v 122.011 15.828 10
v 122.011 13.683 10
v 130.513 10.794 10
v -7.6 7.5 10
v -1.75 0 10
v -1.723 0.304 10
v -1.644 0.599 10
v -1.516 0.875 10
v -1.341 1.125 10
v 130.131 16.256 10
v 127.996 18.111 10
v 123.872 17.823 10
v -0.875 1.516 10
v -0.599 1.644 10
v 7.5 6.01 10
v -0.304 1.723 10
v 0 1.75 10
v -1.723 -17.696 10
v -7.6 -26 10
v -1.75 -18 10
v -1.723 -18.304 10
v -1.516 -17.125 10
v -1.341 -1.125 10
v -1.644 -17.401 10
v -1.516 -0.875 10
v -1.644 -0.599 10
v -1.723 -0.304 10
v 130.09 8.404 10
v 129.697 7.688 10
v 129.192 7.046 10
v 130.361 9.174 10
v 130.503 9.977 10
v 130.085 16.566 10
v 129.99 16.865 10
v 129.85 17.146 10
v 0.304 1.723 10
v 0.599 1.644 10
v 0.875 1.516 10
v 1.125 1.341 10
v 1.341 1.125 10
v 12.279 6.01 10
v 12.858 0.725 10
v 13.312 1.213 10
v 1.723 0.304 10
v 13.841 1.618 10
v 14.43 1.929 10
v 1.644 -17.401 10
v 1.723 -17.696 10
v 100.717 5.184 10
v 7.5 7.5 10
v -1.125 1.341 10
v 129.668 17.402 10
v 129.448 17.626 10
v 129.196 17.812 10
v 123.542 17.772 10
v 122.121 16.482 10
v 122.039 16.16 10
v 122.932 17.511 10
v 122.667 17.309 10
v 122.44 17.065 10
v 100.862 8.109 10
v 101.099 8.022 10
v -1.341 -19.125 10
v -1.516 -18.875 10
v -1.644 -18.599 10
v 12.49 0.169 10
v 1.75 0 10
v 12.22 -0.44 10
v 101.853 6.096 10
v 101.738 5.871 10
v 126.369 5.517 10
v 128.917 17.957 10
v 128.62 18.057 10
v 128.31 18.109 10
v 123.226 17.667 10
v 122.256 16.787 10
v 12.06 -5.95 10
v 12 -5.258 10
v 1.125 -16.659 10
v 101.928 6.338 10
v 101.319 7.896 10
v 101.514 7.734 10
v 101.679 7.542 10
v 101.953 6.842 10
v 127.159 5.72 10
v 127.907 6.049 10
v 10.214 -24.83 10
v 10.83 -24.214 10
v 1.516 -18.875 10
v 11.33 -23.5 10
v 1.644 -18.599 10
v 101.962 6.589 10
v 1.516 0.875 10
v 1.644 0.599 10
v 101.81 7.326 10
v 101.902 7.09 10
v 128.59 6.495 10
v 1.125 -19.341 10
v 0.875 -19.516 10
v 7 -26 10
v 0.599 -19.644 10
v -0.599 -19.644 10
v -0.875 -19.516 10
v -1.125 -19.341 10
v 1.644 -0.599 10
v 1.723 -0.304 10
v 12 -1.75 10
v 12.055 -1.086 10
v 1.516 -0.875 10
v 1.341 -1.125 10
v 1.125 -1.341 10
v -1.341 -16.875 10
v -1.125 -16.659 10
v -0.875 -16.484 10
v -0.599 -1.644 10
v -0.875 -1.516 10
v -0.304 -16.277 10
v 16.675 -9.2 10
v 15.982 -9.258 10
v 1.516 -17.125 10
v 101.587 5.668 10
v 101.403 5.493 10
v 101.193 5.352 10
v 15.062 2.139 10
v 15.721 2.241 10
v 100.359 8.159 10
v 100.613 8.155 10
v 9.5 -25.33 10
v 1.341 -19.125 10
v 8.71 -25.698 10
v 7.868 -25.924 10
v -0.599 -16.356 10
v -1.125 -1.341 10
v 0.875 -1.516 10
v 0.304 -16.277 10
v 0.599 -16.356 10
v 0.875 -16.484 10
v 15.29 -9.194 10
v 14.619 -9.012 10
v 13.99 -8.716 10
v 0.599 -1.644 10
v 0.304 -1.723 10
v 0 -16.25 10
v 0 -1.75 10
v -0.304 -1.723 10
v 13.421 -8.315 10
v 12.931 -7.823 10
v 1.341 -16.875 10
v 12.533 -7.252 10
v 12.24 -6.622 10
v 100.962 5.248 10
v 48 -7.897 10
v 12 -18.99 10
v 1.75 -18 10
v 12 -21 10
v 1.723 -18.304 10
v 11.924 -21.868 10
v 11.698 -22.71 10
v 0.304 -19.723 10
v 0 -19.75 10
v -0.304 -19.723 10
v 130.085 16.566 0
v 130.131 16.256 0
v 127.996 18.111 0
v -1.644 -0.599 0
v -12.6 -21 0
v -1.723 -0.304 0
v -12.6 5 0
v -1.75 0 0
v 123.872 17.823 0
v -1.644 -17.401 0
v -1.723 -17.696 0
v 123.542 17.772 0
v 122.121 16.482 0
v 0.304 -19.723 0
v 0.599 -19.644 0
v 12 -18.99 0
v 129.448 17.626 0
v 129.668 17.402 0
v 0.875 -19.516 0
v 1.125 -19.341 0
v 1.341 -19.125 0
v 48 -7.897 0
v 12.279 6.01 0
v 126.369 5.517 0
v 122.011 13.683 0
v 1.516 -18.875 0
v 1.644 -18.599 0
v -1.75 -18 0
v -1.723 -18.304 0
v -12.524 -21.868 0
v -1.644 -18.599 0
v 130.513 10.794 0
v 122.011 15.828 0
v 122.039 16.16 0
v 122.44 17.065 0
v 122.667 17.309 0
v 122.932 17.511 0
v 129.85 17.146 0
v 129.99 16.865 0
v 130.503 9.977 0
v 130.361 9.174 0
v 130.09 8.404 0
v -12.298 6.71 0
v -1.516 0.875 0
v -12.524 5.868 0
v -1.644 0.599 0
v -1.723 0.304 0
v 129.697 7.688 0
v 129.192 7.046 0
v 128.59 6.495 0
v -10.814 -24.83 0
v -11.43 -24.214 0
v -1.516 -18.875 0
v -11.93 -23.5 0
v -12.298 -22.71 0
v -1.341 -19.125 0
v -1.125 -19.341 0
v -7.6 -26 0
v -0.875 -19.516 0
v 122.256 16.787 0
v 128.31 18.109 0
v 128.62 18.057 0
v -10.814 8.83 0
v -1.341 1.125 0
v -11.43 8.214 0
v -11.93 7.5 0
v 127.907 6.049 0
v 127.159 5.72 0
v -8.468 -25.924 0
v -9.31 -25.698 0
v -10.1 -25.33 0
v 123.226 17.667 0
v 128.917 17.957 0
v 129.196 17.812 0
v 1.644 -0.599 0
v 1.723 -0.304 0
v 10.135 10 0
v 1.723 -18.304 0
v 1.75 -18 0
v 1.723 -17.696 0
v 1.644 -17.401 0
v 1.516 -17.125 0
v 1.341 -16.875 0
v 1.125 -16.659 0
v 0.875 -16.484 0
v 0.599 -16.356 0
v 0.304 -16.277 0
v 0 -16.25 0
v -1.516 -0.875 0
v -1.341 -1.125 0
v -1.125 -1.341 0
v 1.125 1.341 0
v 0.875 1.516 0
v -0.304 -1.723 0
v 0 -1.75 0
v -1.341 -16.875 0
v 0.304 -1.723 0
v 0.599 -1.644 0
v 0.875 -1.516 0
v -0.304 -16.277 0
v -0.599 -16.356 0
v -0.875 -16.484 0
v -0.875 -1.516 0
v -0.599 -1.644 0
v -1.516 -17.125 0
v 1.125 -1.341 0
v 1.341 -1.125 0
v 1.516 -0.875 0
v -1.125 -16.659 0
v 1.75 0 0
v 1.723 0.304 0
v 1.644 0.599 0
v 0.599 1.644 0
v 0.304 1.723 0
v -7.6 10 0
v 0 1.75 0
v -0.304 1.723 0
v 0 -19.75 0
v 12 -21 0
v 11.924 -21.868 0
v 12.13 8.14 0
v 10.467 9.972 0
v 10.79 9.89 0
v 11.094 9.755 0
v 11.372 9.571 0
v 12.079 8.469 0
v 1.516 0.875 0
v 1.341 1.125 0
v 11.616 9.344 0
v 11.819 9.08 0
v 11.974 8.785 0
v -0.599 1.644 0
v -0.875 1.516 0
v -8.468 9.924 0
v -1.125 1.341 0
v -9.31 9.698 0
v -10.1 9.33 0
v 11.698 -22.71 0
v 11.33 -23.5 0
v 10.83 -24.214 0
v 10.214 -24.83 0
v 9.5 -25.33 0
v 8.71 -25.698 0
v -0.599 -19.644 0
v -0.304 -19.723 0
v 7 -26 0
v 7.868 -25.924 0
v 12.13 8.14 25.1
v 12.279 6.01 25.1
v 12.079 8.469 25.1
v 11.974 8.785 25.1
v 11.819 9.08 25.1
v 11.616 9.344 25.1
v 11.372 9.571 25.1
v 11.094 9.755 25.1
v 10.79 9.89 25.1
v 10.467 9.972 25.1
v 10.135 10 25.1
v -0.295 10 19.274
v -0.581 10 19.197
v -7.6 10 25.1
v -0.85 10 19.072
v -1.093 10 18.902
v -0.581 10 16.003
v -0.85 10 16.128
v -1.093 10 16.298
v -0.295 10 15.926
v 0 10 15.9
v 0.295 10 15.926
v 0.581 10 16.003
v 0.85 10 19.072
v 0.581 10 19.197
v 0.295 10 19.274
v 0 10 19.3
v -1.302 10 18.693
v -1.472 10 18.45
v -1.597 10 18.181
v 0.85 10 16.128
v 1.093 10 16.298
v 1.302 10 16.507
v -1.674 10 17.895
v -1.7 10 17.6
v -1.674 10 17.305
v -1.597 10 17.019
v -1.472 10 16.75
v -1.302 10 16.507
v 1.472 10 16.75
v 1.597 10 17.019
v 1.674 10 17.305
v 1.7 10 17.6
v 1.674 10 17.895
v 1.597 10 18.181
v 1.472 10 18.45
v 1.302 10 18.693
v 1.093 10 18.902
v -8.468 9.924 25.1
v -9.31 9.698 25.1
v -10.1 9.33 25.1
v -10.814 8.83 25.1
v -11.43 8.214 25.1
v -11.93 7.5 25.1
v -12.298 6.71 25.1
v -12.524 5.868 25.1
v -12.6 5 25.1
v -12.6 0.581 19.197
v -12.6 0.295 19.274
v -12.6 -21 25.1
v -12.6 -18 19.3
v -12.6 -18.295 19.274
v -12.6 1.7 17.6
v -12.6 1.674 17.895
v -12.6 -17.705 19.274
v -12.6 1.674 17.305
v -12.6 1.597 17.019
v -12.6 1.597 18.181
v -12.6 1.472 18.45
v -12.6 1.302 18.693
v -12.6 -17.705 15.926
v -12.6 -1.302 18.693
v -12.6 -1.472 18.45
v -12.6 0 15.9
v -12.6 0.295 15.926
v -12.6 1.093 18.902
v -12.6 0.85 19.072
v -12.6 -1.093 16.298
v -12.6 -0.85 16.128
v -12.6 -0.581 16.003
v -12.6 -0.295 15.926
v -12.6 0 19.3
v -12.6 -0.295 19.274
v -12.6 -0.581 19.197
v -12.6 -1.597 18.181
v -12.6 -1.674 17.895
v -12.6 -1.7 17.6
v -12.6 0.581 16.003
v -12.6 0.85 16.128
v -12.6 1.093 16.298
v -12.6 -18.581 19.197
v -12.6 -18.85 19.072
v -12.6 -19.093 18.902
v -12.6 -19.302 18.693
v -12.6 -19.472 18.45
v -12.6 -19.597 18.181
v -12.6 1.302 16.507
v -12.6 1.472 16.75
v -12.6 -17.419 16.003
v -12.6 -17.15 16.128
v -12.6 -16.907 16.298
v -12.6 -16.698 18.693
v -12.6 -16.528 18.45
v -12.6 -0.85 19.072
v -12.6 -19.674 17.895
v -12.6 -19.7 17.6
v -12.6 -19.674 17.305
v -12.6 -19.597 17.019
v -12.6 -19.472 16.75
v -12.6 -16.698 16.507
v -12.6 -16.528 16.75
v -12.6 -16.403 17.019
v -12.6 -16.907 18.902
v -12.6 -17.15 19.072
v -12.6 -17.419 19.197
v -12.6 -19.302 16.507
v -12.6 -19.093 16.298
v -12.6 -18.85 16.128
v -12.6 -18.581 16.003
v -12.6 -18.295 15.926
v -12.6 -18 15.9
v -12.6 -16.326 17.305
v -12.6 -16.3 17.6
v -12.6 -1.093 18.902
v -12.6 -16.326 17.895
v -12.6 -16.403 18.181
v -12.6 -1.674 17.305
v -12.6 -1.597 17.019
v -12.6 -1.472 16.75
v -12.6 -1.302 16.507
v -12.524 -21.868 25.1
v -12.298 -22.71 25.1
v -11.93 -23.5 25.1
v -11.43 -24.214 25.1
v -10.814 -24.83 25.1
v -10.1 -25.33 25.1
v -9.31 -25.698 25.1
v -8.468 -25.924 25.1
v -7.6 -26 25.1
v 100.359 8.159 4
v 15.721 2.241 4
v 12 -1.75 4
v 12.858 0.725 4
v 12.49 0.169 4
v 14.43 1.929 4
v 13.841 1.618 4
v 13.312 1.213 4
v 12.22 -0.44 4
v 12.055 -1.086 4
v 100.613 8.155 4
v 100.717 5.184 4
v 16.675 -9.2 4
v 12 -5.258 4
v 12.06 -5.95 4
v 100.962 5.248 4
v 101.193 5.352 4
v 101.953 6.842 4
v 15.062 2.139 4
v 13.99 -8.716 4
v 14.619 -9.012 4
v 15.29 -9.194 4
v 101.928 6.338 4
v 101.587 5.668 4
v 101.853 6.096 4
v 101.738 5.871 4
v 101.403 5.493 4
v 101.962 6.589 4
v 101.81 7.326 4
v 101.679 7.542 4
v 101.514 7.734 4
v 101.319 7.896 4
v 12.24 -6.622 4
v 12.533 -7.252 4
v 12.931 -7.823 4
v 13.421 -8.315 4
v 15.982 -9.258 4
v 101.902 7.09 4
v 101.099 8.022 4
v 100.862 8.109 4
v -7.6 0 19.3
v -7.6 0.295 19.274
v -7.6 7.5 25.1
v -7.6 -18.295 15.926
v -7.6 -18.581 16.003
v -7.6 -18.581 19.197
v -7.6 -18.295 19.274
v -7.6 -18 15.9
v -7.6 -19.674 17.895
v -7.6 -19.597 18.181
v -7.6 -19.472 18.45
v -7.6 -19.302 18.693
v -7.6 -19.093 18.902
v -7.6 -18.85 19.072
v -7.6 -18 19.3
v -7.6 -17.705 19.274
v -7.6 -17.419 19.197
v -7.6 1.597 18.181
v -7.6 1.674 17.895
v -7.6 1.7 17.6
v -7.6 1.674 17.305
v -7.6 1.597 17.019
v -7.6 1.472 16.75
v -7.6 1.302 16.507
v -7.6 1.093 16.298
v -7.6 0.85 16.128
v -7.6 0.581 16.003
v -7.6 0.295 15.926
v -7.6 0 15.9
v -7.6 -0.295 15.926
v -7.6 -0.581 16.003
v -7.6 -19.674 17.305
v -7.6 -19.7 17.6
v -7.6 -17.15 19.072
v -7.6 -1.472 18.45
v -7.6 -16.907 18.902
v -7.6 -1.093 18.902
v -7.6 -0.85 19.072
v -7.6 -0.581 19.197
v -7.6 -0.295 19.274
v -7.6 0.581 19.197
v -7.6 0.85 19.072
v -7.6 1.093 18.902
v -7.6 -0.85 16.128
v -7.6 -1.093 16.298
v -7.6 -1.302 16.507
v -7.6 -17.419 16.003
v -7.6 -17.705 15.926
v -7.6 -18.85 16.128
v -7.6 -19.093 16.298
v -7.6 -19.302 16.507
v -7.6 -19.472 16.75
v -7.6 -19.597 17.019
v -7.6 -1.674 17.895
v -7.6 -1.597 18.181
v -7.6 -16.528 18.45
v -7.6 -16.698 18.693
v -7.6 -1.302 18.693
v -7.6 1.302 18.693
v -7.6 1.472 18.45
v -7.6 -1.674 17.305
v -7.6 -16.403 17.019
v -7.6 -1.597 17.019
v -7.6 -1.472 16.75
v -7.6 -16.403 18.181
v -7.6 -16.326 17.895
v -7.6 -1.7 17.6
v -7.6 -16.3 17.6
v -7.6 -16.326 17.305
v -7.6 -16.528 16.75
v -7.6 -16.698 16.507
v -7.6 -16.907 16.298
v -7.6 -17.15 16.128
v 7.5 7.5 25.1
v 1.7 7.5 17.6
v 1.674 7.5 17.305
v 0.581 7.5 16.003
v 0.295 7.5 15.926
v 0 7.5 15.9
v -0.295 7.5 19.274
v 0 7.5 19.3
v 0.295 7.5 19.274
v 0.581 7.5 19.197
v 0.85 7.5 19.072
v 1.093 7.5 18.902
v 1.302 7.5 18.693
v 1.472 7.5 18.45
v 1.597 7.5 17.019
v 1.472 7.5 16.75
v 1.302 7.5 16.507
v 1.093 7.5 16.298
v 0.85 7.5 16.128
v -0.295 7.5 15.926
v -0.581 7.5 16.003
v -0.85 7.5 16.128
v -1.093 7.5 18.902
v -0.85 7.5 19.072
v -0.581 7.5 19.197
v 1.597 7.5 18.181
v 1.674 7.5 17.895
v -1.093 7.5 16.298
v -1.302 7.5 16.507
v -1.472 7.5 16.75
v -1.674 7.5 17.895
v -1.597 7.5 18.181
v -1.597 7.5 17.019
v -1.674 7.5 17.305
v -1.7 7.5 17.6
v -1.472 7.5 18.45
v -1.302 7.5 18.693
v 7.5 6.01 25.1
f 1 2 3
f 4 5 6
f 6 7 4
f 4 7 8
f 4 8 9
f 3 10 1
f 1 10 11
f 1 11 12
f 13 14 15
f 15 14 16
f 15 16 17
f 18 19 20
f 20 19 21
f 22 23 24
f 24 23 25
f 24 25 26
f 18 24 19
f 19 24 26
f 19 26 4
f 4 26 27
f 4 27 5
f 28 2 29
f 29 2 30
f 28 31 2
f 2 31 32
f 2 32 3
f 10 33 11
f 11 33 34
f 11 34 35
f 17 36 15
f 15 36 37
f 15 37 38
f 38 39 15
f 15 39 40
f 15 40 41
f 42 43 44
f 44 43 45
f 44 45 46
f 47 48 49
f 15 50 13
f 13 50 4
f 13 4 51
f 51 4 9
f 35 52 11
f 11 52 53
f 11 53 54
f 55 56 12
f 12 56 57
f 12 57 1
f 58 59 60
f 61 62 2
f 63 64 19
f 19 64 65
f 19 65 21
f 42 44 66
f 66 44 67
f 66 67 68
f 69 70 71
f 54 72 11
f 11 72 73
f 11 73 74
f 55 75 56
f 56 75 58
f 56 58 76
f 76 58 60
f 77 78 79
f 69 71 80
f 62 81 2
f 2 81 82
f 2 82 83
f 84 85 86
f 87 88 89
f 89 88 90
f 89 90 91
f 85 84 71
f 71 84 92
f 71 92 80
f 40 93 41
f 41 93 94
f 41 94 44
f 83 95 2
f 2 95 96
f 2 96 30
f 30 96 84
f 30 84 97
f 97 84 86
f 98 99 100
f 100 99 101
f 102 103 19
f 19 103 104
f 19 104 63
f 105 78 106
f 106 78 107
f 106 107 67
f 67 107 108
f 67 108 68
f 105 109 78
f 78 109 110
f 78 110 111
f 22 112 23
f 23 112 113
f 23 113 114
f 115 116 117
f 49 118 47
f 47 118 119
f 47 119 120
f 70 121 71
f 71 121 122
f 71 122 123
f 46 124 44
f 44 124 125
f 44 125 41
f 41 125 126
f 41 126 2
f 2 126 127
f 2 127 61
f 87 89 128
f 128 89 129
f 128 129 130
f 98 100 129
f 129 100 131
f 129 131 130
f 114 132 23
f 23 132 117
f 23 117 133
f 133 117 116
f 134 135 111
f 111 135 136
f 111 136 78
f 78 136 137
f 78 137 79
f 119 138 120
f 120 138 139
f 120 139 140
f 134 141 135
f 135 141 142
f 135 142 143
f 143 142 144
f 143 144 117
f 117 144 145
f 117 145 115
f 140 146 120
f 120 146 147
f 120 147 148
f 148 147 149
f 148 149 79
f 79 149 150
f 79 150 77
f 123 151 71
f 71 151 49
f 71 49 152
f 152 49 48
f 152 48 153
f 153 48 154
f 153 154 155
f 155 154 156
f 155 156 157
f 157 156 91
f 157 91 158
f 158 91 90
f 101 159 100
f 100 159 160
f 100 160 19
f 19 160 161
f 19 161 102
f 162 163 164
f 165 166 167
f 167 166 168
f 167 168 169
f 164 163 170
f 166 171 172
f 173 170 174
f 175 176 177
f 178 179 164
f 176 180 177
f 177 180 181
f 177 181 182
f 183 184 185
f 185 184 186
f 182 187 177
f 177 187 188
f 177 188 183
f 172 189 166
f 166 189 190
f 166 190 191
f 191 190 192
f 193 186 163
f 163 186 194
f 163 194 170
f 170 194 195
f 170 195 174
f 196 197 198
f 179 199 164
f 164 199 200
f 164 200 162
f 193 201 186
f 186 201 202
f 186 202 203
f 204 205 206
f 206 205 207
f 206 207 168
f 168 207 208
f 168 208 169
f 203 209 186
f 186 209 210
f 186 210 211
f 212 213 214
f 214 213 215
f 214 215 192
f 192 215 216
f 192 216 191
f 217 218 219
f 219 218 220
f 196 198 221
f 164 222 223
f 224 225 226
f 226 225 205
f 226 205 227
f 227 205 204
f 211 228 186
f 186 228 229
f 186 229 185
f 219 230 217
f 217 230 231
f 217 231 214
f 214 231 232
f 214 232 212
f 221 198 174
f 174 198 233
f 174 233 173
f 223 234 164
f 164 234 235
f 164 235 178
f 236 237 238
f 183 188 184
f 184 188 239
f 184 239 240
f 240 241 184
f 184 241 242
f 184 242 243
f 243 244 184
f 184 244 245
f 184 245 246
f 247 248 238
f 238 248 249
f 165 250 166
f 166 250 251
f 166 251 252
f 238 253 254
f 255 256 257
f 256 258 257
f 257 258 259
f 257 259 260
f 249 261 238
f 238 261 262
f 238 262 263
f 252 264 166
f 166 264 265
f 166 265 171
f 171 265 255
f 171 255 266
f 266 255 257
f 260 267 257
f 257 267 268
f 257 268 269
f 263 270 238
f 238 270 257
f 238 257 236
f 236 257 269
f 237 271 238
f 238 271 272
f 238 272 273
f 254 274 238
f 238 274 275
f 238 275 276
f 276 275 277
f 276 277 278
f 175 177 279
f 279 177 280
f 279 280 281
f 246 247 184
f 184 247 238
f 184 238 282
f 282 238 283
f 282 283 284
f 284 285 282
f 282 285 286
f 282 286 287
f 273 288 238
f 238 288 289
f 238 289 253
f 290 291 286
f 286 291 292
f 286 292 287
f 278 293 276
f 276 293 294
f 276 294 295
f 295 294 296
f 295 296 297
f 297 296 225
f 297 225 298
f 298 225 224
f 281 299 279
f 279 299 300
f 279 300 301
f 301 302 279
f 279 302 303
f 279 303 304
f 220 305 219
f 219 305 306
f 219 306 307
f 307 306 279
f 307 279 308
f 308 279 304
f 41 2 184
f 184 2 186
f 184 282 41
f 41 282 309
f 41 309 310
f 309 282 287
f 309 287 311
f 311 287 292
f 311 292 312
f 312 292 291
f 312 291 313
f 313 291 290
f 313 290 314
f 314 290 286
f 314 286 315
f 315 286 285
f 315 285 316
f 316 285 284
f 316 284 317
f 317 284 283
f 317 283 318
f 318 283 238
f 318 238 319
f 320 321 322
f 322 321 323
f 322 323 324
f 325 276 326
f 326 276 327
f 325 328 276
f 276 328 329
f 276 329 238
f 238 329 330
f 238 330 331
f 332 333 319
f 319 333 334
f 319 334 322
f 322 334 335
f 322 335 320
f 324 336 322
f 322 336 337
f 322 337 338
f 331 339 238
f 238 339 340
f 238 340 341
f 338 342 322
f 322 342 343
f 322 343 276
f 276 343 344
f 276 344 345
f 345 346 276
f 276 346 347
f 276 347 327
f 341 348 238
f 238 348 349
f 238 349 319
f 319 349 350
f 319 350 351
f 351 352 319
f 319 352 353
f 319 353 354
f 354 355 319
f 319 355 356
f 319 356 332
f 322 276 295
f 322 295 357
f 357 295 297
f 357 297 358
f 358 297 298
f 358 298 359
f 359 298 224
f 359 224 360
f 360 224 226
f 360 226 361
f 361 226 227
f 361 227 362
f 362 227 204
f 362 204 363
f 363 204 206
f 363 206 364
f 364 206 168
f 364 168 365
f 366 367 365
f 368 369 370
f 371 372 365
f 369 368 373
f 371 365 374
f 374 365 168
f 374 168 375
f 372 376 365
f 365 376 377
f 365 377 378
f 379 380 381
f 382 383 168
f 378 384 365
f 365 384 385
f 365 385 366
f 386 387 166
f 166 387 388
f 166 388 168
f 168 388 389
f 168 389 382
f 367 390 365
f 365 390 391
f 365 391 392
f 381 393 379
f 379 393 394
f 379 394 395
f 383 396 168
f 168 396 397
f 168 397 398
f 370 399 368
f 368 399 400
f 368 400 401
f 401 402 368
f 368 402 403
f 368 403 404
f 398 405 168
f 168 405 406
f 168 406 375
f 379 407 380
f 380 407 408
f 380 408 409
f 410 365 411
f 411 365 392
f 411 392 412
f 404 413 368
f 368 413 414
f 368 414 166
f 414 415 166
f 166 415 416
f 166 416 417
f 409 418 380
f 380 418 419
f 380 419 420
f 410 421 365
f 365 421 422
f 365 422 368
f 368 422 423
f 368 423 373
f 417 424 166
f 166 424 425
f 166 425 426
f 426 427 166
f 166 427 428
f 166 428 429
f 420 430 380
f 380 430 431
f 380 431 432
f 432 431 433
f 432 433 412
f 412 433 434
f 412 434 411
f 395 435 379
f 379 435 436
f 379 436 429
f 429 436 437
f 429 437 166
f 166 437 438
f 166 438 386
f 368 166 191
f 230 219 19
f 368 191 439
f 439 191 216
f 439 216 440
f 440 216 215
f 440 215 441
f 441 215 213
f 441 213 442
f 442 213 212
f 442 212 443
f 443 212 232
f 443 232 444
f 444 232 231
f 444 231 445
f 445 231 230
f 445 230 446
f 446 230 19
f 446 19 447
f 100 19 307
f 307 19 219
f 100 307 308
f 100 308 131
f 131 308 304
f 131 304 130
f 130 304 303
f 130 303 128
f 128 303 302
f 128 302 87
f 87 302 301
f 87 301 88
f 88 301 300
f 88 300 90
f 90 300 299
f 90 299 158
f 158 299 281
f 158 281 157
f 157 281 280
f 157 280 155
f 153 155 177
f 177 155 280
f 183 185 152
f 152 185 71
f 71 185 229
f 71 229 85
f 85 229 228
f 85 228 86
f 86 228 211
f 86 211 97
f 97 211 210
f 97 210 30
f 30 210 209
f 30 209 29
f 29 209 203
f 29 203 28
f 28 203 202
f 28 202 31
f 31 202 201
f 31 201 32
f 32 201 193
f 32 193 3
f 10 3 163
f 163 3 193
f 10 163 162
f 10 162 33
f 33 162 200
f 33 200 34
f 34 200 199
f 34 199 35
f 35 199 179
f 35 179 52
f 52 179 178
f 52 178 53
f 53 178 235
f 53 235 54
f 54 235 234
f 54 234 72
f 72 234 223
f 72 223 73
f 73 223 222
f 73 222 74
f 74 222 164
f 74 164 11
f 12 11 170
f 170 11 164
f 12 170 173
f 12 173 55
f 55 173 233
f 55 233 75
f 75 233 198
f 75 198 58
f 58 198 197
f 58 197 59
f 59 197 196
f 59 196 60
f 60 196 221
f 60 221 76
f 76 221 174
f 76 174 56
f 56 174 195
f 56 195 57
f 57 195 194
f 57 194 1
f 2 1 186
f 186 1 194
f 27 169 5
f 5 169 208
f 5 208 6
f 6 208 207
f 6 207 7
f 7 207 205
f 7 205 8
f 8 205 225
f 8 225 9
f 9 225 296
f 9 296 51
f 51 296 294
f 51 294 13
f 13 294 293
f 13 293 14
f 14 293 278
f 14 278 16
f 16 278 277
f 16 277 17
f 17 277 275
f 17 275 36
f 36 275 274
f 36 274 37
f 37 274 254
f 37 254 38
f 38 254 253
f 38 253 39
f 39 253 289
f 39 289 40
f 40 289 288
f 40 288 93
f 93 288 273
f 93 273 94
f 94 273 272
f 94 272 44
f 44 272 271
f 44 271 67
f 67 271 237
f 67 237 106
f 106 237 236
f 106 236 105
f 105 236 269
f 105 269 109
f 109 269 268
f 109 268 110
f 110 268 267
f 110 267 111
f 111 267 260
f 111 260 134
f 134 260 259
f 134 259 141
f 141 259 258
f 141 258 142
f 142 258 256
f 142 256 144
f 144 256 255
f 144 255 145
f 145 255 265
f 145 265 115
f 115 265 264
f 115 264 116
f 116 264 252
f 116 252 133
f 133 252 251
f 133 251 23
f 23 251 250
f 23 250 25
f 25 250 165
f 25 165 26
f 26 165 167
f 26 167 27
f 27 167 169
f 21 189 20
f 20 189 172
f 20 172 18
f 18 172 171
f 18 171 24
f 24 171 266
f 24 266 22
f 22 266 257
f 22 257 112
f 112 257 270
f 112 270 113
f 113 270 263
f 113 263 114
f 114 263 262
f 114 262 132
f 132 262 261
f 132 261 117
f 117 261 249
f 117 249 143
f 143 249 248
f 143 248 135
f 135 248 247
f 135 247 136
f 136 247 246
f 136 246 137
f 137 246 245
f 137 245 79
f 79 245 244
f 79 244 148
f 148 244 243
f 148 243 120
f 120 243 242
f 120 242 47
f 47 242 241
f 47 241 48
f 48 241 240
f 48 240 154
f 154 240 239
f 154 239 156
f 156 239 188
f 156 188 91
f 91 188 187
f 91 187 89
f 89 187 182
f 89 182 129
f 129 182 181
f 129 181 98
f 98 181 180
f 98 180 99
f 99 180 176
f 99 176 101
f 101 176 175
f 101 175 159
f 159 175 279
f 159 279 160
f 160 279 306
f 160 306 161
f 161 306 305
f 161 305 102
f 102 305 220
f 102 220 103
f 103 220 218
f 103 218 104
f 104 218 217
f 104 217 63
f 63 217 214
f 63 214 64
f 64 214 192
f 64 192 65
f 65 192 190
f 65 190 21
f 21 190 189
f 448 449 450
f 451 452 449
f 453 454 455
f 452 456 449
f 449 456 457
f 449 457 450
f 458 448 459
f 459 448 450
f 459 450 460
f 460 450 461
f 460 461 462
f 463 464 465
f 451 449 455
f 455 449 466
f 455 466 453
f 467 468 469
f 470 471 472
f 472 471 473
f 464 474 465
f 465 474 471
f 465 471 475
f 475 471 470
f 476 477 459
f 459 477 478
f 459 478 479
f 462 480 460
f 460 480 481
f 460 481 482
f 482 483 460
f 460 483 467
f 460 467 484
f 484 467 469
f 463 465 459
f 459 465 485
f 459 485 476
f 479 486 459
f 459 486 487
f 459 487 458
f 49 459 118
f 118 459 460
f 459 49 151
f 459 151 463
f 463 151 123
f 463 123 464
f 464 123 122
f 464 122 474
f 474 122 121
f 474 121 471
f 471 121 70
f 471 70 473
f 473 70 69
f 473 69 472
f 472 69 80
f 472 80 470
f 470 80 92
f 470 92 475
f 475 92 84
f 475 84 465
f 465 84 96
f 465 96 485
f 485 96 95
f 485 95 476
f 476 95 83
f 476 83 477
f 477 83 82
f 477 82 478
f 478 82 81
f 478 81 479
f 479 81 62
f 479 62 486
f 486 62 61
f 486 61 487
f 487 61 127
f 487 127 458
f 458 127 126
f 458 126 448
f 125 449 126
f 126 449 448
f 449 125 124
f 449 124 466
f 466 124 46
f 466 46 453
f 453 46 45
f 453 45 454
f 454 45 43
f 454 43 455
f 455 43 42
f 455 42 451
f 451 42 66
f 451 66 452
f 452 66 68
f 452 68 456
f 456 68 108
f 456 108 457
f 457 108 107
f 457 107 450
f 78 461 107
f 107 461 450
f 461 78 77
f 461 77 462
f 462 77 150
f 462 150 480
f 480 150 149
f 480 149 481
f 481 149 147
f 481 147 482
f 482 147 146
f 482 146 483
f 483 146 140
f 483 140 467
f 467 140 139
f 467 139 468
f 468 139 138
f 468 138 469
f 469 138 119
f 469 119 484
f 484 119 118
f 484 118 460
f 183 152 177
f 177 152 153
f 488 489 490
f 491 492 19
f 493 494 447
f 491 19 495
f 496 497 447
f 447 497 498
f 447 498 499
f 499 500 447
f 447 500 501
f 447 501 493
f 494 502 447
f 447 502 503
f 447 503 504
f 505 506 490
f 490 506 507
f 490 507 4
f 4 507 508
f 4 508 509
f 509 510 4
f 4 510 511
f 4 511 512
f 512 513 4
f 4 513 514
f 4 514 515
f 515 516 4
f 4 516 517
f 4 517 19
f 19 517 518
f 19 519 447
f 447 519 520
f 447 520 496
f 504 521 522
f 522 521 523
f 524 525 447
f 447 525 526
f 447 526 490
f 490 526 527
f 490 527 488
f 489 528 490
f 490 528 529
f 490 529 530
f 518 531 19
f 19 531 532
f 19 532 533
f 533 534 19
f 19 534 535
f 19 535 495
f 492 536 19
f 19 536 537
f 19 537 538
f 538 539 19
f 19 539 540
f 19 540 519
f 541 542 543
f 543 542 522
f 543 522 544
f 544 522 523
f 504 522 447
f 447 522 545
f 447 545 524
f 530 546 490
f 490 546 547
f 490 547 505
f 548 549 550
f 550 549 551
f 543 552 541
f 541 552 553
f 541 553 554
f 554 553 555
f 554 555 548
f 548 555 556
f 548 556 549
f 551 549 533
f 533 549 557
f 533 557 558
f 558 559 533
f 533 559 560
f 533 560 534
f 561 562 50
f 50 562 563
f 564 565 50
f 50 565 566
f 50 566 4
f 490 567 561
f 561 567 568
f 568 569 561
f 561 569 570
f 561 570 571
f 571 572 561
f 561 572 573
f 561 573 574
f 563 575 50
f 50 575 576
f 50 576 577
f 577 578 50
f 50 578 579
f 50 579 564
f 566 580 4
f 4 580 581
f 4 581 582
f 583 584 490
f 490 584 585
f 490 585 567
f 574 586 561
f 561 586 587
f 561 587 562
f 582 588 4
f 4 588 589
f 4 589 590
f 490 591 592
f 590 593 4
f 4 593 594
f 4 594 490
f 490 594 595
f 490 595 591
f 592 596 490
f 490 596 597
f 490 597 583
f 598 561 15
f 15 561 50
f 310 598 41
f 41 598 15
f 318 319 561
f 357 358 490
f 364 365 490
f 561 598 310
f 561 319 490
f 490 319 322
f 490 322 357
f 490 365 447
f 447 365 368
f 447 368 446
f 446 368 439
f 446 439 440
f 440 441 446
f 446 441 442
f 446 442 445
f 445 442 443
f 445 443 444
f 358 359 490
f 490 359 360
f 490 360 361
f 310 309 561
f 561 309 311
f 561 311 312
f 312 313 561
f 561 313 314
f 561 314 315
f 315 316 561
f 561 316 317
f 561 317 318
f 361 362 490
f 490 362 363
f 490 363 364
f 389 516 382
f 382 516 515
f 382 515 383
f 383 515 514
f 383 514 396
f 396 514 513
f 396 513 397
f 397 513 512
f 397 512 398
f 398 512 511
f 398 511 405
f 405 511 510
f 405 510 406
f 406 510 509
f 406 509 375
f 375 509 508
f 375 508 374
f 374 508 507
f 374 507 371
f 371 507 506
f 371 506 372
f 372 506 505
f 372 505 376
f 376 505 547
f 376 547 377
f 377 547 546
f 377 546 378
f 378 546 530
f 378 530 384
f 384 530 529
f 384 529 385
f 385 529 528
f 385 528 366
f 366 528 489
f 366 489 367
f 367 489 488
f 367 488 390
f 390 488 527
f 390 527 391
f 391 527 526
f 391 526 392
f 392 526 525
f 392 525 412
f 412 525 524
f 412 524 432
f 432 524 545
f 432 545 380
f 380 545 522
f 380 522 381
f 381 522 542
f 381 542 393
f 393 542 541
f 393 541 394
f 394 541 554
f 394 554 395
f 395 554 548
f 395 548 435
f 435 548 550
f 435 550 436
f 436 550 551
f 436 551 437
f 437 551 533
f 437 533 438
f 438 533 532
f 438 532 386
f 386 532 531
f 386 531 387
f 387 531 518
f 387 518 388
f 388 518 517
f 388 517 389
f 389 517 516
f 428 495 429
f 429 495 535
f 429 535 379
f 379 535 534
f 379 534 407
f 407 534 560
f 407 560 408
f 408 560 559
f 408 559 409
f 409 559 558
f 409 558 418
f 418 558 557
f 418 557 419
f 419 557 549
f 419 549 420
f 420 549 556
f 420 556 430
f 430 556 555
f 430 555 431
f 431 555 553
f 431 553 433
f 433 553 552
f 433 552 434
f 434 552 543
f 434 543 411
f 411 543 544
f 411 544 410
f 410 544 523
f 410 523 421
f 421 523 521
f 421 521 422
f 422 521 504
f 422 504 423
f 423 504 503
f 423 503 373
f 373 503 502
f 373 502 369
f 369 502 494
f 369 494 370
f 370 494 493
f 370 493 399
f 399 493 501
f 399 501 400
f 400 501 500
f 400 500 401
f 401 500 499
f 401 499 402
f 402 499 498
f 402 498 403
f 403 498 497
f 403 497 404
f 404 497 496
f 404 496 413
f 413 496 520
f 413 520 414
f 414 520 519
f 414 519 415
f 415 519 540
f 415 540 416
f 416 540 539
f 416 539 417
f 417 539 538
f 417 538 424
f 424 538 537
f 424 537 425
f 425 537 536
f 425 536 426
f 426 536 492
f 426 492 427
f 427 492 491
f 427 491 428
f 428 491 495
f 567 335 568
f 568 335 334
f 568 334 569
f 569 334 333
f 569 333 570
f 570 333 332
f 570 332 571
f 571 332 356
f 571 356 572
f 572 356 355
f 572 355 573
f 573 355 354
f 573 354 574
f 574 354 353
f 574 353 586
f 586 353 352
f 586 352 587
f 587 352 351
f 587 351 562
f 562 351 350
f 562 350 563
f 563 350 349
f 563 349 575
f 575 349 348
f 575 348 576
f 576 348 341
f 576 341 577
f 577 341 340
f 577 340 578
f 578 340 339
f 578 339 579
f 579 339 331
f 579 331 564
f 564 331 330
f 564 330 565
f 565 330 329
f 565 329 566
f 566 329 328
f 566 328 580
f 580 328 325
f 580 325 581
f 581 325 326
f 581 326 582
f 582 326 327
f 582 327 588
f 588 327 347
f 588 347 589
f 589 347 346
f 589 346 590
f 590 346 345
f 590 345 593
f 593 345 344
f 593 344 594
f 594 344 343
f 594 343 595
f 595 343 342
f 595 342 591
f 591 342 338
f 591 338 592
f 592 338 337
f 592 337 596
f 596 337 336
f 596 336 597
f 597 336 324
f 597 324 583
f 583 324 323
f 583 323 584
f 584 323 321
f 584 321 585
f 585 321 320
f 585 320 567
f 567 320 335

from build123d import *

# Parameters (mm, degrees)
SKETCH1_R            = 1.75
BOSS_EXTRUDE1_DEPTH  = 10
CUT_EXTRUDE1_DEPTH   = 6
BOSS_EXTRUDE2_DEPTH  = 10
BOSS_EXTRUDE3_DEPTH  = 15.1
M3_CLEARANCE_HOLE1_D = 3.4
M3_CLEARANCE_HOLE2_D = 3.4


with BuildPart() as part:
    # Sketch1 → Boss-Extrude1 (new body)
    with BuildSketch(Plane.XY):
        with BuildLine():
            Line((-7.6, 10), (10.134969828, 10))
            ThreePointArc((10.134969828, 10), (11.498966548, 9.462707403), (12.130097928, 8.139512947))
            Line((12.130097928, 8.139512947), (12.279025895, 6.009743799))
            Line((12.279025895, 6.009743799), (122.011071424, 13.682955911))
            Line((122.011071424, 13.682955911), (122.011071424, 15.827693331))
            ThreePointArc((122.011071424, 15.827693331), (122.54836402, 17.191690051), (123.871558476, 17.822821431))
            Line((123.871558476, 17.822821431), (127.996455725, 18.111262346))
            ThreePointArc((127.996455725, 18.111262346), (129.448086731, 17.625553406), (130.131096773, 16.255647193))
            Line((130.131096773, 16.255647193), (130.513028814, 10.79376454))
            ThreePointArc((130.513028814, 10.79376454), (129.45752894, 7.356802052), (126.3687377, 5.516649939))
            Line((126.3687377, 5.516649939), (12, -14.058605554))
            Line((12, -14.058605554), (12, -21))
            ThreePointArc((12, -21), (10.535533906, -24.535533906), (7, -26))
            Line((7, -26), (-7.6, -26))
            ThreePointArc((-7.6, -26), (-11.135533906, -24.535533906), (-12.6, -21))
            Line((-12.6, -21), (-12.6, 5))
            ThreePointArc((-12.6, 5), (-11.135533906, 8.535533906), (-7.6, 10))
        make_face()
        Circle(SKETCH1_R, mode=Mode.SUBTRACT)
        with Locations((0, -18)):
            Circle(SKETCH1_R, mode=Mode.SUBTRACT)
    extrude(amount=BOSS_EXTRUDE1_DEPTH)

    # Sketch2 → Cut-Extrude1 (cut)
    with BuildSketch(Plane.XY.offset(10)):
        with BuildLine():
            Line((12, -5.257633034), (12, -1.749595529))
            ThreePointArc((12, -1.749595529), (13.074585194, 0.978397911), (15.720974105, 2.240660672))
            Line((15.720974105, 2.240660672), (100.359457674, 8.159159996))
            ThreePointArc((100.359457674, 8.159159996), (101.953365437, 6.84188311), (100.717151126, 5.18431425))
            Line((100.717151126, 5.18431425), (16.67482331, -9.20029882))
            ThreePointArc((16.67482331, -9.20029882), (13.421172092, -8.31535222), (12, -5.257633034))
        make_face()
    extrude(amount=-CUT_EXTRUDE1_DEPTH, mode=Mode.SUBTRACT)

    # Sketch4 → Boss-Extrude2 (add)
    with BuildSketch(Plane.XY.offset(10)):
        Polygon((12, -18.990256201), (48, -7.896876292), (12, -14.058605554), align=None)
    extrude(amount=-BOSS_EXTRUDE2_DEPTH)

    # Sketch5 → Boss-Extrude3 (add)
    with BuildSketch(Plane.XY.offset(10)):
        with BuildLine():
            Line((-7.6, 7.5), (-7.6, -26))
            ThreePointArc((-7.6, -26), (-11.135533906, -24.535533906), (-12.6, -21))
            Line((-12.6, -21), (-12.6, 5))
            ThreePointArc((-12.6, 5), (-11.135533906, 8.535533906), (-7.6, 10))
            Line((-7.6, 10), (10.134969828, 10))
            ThreePointArc((10.134969828, 10), (11.498966548, 9.462707403), (12.130097928, 8.139512947))
            Line((12.130097928, 8.139512947), (12.279025895, 6.009743799))
            Line((12.279025895, 6.009743799), (7.5, 6.009743799))
            Line((7.5, 6.009743799), (7.5, 7.5))
            Line((7.5, 7.5), (-7.6, 7.5))
        make_face()
    extrude(amount=BOSS_EXTRUDE3_DEPTH)

    # M3 Clearance Hole1 (through all)
    with Locations(Plane(origin=(-7.6, 0, 0), x_dir=(0, 0, -1), z_dir=(1, 0, 0))):
        with Locations((-17.6, -18), (-17.6, 0)):
            Hole(M3_CLEARANCE_HOLE1_D / 2)

    # M3 Clearance Hole2 (through all)
    with Locations(Plane(origin=(0, 10, 0), x_dir=(1, 0, 0), z_dir=(0, 1, 0))):
        with Locations((0, -17.6)):
            Hole(M3_CLEARANCE_HOLE2_D / 2)


solid = part.part
